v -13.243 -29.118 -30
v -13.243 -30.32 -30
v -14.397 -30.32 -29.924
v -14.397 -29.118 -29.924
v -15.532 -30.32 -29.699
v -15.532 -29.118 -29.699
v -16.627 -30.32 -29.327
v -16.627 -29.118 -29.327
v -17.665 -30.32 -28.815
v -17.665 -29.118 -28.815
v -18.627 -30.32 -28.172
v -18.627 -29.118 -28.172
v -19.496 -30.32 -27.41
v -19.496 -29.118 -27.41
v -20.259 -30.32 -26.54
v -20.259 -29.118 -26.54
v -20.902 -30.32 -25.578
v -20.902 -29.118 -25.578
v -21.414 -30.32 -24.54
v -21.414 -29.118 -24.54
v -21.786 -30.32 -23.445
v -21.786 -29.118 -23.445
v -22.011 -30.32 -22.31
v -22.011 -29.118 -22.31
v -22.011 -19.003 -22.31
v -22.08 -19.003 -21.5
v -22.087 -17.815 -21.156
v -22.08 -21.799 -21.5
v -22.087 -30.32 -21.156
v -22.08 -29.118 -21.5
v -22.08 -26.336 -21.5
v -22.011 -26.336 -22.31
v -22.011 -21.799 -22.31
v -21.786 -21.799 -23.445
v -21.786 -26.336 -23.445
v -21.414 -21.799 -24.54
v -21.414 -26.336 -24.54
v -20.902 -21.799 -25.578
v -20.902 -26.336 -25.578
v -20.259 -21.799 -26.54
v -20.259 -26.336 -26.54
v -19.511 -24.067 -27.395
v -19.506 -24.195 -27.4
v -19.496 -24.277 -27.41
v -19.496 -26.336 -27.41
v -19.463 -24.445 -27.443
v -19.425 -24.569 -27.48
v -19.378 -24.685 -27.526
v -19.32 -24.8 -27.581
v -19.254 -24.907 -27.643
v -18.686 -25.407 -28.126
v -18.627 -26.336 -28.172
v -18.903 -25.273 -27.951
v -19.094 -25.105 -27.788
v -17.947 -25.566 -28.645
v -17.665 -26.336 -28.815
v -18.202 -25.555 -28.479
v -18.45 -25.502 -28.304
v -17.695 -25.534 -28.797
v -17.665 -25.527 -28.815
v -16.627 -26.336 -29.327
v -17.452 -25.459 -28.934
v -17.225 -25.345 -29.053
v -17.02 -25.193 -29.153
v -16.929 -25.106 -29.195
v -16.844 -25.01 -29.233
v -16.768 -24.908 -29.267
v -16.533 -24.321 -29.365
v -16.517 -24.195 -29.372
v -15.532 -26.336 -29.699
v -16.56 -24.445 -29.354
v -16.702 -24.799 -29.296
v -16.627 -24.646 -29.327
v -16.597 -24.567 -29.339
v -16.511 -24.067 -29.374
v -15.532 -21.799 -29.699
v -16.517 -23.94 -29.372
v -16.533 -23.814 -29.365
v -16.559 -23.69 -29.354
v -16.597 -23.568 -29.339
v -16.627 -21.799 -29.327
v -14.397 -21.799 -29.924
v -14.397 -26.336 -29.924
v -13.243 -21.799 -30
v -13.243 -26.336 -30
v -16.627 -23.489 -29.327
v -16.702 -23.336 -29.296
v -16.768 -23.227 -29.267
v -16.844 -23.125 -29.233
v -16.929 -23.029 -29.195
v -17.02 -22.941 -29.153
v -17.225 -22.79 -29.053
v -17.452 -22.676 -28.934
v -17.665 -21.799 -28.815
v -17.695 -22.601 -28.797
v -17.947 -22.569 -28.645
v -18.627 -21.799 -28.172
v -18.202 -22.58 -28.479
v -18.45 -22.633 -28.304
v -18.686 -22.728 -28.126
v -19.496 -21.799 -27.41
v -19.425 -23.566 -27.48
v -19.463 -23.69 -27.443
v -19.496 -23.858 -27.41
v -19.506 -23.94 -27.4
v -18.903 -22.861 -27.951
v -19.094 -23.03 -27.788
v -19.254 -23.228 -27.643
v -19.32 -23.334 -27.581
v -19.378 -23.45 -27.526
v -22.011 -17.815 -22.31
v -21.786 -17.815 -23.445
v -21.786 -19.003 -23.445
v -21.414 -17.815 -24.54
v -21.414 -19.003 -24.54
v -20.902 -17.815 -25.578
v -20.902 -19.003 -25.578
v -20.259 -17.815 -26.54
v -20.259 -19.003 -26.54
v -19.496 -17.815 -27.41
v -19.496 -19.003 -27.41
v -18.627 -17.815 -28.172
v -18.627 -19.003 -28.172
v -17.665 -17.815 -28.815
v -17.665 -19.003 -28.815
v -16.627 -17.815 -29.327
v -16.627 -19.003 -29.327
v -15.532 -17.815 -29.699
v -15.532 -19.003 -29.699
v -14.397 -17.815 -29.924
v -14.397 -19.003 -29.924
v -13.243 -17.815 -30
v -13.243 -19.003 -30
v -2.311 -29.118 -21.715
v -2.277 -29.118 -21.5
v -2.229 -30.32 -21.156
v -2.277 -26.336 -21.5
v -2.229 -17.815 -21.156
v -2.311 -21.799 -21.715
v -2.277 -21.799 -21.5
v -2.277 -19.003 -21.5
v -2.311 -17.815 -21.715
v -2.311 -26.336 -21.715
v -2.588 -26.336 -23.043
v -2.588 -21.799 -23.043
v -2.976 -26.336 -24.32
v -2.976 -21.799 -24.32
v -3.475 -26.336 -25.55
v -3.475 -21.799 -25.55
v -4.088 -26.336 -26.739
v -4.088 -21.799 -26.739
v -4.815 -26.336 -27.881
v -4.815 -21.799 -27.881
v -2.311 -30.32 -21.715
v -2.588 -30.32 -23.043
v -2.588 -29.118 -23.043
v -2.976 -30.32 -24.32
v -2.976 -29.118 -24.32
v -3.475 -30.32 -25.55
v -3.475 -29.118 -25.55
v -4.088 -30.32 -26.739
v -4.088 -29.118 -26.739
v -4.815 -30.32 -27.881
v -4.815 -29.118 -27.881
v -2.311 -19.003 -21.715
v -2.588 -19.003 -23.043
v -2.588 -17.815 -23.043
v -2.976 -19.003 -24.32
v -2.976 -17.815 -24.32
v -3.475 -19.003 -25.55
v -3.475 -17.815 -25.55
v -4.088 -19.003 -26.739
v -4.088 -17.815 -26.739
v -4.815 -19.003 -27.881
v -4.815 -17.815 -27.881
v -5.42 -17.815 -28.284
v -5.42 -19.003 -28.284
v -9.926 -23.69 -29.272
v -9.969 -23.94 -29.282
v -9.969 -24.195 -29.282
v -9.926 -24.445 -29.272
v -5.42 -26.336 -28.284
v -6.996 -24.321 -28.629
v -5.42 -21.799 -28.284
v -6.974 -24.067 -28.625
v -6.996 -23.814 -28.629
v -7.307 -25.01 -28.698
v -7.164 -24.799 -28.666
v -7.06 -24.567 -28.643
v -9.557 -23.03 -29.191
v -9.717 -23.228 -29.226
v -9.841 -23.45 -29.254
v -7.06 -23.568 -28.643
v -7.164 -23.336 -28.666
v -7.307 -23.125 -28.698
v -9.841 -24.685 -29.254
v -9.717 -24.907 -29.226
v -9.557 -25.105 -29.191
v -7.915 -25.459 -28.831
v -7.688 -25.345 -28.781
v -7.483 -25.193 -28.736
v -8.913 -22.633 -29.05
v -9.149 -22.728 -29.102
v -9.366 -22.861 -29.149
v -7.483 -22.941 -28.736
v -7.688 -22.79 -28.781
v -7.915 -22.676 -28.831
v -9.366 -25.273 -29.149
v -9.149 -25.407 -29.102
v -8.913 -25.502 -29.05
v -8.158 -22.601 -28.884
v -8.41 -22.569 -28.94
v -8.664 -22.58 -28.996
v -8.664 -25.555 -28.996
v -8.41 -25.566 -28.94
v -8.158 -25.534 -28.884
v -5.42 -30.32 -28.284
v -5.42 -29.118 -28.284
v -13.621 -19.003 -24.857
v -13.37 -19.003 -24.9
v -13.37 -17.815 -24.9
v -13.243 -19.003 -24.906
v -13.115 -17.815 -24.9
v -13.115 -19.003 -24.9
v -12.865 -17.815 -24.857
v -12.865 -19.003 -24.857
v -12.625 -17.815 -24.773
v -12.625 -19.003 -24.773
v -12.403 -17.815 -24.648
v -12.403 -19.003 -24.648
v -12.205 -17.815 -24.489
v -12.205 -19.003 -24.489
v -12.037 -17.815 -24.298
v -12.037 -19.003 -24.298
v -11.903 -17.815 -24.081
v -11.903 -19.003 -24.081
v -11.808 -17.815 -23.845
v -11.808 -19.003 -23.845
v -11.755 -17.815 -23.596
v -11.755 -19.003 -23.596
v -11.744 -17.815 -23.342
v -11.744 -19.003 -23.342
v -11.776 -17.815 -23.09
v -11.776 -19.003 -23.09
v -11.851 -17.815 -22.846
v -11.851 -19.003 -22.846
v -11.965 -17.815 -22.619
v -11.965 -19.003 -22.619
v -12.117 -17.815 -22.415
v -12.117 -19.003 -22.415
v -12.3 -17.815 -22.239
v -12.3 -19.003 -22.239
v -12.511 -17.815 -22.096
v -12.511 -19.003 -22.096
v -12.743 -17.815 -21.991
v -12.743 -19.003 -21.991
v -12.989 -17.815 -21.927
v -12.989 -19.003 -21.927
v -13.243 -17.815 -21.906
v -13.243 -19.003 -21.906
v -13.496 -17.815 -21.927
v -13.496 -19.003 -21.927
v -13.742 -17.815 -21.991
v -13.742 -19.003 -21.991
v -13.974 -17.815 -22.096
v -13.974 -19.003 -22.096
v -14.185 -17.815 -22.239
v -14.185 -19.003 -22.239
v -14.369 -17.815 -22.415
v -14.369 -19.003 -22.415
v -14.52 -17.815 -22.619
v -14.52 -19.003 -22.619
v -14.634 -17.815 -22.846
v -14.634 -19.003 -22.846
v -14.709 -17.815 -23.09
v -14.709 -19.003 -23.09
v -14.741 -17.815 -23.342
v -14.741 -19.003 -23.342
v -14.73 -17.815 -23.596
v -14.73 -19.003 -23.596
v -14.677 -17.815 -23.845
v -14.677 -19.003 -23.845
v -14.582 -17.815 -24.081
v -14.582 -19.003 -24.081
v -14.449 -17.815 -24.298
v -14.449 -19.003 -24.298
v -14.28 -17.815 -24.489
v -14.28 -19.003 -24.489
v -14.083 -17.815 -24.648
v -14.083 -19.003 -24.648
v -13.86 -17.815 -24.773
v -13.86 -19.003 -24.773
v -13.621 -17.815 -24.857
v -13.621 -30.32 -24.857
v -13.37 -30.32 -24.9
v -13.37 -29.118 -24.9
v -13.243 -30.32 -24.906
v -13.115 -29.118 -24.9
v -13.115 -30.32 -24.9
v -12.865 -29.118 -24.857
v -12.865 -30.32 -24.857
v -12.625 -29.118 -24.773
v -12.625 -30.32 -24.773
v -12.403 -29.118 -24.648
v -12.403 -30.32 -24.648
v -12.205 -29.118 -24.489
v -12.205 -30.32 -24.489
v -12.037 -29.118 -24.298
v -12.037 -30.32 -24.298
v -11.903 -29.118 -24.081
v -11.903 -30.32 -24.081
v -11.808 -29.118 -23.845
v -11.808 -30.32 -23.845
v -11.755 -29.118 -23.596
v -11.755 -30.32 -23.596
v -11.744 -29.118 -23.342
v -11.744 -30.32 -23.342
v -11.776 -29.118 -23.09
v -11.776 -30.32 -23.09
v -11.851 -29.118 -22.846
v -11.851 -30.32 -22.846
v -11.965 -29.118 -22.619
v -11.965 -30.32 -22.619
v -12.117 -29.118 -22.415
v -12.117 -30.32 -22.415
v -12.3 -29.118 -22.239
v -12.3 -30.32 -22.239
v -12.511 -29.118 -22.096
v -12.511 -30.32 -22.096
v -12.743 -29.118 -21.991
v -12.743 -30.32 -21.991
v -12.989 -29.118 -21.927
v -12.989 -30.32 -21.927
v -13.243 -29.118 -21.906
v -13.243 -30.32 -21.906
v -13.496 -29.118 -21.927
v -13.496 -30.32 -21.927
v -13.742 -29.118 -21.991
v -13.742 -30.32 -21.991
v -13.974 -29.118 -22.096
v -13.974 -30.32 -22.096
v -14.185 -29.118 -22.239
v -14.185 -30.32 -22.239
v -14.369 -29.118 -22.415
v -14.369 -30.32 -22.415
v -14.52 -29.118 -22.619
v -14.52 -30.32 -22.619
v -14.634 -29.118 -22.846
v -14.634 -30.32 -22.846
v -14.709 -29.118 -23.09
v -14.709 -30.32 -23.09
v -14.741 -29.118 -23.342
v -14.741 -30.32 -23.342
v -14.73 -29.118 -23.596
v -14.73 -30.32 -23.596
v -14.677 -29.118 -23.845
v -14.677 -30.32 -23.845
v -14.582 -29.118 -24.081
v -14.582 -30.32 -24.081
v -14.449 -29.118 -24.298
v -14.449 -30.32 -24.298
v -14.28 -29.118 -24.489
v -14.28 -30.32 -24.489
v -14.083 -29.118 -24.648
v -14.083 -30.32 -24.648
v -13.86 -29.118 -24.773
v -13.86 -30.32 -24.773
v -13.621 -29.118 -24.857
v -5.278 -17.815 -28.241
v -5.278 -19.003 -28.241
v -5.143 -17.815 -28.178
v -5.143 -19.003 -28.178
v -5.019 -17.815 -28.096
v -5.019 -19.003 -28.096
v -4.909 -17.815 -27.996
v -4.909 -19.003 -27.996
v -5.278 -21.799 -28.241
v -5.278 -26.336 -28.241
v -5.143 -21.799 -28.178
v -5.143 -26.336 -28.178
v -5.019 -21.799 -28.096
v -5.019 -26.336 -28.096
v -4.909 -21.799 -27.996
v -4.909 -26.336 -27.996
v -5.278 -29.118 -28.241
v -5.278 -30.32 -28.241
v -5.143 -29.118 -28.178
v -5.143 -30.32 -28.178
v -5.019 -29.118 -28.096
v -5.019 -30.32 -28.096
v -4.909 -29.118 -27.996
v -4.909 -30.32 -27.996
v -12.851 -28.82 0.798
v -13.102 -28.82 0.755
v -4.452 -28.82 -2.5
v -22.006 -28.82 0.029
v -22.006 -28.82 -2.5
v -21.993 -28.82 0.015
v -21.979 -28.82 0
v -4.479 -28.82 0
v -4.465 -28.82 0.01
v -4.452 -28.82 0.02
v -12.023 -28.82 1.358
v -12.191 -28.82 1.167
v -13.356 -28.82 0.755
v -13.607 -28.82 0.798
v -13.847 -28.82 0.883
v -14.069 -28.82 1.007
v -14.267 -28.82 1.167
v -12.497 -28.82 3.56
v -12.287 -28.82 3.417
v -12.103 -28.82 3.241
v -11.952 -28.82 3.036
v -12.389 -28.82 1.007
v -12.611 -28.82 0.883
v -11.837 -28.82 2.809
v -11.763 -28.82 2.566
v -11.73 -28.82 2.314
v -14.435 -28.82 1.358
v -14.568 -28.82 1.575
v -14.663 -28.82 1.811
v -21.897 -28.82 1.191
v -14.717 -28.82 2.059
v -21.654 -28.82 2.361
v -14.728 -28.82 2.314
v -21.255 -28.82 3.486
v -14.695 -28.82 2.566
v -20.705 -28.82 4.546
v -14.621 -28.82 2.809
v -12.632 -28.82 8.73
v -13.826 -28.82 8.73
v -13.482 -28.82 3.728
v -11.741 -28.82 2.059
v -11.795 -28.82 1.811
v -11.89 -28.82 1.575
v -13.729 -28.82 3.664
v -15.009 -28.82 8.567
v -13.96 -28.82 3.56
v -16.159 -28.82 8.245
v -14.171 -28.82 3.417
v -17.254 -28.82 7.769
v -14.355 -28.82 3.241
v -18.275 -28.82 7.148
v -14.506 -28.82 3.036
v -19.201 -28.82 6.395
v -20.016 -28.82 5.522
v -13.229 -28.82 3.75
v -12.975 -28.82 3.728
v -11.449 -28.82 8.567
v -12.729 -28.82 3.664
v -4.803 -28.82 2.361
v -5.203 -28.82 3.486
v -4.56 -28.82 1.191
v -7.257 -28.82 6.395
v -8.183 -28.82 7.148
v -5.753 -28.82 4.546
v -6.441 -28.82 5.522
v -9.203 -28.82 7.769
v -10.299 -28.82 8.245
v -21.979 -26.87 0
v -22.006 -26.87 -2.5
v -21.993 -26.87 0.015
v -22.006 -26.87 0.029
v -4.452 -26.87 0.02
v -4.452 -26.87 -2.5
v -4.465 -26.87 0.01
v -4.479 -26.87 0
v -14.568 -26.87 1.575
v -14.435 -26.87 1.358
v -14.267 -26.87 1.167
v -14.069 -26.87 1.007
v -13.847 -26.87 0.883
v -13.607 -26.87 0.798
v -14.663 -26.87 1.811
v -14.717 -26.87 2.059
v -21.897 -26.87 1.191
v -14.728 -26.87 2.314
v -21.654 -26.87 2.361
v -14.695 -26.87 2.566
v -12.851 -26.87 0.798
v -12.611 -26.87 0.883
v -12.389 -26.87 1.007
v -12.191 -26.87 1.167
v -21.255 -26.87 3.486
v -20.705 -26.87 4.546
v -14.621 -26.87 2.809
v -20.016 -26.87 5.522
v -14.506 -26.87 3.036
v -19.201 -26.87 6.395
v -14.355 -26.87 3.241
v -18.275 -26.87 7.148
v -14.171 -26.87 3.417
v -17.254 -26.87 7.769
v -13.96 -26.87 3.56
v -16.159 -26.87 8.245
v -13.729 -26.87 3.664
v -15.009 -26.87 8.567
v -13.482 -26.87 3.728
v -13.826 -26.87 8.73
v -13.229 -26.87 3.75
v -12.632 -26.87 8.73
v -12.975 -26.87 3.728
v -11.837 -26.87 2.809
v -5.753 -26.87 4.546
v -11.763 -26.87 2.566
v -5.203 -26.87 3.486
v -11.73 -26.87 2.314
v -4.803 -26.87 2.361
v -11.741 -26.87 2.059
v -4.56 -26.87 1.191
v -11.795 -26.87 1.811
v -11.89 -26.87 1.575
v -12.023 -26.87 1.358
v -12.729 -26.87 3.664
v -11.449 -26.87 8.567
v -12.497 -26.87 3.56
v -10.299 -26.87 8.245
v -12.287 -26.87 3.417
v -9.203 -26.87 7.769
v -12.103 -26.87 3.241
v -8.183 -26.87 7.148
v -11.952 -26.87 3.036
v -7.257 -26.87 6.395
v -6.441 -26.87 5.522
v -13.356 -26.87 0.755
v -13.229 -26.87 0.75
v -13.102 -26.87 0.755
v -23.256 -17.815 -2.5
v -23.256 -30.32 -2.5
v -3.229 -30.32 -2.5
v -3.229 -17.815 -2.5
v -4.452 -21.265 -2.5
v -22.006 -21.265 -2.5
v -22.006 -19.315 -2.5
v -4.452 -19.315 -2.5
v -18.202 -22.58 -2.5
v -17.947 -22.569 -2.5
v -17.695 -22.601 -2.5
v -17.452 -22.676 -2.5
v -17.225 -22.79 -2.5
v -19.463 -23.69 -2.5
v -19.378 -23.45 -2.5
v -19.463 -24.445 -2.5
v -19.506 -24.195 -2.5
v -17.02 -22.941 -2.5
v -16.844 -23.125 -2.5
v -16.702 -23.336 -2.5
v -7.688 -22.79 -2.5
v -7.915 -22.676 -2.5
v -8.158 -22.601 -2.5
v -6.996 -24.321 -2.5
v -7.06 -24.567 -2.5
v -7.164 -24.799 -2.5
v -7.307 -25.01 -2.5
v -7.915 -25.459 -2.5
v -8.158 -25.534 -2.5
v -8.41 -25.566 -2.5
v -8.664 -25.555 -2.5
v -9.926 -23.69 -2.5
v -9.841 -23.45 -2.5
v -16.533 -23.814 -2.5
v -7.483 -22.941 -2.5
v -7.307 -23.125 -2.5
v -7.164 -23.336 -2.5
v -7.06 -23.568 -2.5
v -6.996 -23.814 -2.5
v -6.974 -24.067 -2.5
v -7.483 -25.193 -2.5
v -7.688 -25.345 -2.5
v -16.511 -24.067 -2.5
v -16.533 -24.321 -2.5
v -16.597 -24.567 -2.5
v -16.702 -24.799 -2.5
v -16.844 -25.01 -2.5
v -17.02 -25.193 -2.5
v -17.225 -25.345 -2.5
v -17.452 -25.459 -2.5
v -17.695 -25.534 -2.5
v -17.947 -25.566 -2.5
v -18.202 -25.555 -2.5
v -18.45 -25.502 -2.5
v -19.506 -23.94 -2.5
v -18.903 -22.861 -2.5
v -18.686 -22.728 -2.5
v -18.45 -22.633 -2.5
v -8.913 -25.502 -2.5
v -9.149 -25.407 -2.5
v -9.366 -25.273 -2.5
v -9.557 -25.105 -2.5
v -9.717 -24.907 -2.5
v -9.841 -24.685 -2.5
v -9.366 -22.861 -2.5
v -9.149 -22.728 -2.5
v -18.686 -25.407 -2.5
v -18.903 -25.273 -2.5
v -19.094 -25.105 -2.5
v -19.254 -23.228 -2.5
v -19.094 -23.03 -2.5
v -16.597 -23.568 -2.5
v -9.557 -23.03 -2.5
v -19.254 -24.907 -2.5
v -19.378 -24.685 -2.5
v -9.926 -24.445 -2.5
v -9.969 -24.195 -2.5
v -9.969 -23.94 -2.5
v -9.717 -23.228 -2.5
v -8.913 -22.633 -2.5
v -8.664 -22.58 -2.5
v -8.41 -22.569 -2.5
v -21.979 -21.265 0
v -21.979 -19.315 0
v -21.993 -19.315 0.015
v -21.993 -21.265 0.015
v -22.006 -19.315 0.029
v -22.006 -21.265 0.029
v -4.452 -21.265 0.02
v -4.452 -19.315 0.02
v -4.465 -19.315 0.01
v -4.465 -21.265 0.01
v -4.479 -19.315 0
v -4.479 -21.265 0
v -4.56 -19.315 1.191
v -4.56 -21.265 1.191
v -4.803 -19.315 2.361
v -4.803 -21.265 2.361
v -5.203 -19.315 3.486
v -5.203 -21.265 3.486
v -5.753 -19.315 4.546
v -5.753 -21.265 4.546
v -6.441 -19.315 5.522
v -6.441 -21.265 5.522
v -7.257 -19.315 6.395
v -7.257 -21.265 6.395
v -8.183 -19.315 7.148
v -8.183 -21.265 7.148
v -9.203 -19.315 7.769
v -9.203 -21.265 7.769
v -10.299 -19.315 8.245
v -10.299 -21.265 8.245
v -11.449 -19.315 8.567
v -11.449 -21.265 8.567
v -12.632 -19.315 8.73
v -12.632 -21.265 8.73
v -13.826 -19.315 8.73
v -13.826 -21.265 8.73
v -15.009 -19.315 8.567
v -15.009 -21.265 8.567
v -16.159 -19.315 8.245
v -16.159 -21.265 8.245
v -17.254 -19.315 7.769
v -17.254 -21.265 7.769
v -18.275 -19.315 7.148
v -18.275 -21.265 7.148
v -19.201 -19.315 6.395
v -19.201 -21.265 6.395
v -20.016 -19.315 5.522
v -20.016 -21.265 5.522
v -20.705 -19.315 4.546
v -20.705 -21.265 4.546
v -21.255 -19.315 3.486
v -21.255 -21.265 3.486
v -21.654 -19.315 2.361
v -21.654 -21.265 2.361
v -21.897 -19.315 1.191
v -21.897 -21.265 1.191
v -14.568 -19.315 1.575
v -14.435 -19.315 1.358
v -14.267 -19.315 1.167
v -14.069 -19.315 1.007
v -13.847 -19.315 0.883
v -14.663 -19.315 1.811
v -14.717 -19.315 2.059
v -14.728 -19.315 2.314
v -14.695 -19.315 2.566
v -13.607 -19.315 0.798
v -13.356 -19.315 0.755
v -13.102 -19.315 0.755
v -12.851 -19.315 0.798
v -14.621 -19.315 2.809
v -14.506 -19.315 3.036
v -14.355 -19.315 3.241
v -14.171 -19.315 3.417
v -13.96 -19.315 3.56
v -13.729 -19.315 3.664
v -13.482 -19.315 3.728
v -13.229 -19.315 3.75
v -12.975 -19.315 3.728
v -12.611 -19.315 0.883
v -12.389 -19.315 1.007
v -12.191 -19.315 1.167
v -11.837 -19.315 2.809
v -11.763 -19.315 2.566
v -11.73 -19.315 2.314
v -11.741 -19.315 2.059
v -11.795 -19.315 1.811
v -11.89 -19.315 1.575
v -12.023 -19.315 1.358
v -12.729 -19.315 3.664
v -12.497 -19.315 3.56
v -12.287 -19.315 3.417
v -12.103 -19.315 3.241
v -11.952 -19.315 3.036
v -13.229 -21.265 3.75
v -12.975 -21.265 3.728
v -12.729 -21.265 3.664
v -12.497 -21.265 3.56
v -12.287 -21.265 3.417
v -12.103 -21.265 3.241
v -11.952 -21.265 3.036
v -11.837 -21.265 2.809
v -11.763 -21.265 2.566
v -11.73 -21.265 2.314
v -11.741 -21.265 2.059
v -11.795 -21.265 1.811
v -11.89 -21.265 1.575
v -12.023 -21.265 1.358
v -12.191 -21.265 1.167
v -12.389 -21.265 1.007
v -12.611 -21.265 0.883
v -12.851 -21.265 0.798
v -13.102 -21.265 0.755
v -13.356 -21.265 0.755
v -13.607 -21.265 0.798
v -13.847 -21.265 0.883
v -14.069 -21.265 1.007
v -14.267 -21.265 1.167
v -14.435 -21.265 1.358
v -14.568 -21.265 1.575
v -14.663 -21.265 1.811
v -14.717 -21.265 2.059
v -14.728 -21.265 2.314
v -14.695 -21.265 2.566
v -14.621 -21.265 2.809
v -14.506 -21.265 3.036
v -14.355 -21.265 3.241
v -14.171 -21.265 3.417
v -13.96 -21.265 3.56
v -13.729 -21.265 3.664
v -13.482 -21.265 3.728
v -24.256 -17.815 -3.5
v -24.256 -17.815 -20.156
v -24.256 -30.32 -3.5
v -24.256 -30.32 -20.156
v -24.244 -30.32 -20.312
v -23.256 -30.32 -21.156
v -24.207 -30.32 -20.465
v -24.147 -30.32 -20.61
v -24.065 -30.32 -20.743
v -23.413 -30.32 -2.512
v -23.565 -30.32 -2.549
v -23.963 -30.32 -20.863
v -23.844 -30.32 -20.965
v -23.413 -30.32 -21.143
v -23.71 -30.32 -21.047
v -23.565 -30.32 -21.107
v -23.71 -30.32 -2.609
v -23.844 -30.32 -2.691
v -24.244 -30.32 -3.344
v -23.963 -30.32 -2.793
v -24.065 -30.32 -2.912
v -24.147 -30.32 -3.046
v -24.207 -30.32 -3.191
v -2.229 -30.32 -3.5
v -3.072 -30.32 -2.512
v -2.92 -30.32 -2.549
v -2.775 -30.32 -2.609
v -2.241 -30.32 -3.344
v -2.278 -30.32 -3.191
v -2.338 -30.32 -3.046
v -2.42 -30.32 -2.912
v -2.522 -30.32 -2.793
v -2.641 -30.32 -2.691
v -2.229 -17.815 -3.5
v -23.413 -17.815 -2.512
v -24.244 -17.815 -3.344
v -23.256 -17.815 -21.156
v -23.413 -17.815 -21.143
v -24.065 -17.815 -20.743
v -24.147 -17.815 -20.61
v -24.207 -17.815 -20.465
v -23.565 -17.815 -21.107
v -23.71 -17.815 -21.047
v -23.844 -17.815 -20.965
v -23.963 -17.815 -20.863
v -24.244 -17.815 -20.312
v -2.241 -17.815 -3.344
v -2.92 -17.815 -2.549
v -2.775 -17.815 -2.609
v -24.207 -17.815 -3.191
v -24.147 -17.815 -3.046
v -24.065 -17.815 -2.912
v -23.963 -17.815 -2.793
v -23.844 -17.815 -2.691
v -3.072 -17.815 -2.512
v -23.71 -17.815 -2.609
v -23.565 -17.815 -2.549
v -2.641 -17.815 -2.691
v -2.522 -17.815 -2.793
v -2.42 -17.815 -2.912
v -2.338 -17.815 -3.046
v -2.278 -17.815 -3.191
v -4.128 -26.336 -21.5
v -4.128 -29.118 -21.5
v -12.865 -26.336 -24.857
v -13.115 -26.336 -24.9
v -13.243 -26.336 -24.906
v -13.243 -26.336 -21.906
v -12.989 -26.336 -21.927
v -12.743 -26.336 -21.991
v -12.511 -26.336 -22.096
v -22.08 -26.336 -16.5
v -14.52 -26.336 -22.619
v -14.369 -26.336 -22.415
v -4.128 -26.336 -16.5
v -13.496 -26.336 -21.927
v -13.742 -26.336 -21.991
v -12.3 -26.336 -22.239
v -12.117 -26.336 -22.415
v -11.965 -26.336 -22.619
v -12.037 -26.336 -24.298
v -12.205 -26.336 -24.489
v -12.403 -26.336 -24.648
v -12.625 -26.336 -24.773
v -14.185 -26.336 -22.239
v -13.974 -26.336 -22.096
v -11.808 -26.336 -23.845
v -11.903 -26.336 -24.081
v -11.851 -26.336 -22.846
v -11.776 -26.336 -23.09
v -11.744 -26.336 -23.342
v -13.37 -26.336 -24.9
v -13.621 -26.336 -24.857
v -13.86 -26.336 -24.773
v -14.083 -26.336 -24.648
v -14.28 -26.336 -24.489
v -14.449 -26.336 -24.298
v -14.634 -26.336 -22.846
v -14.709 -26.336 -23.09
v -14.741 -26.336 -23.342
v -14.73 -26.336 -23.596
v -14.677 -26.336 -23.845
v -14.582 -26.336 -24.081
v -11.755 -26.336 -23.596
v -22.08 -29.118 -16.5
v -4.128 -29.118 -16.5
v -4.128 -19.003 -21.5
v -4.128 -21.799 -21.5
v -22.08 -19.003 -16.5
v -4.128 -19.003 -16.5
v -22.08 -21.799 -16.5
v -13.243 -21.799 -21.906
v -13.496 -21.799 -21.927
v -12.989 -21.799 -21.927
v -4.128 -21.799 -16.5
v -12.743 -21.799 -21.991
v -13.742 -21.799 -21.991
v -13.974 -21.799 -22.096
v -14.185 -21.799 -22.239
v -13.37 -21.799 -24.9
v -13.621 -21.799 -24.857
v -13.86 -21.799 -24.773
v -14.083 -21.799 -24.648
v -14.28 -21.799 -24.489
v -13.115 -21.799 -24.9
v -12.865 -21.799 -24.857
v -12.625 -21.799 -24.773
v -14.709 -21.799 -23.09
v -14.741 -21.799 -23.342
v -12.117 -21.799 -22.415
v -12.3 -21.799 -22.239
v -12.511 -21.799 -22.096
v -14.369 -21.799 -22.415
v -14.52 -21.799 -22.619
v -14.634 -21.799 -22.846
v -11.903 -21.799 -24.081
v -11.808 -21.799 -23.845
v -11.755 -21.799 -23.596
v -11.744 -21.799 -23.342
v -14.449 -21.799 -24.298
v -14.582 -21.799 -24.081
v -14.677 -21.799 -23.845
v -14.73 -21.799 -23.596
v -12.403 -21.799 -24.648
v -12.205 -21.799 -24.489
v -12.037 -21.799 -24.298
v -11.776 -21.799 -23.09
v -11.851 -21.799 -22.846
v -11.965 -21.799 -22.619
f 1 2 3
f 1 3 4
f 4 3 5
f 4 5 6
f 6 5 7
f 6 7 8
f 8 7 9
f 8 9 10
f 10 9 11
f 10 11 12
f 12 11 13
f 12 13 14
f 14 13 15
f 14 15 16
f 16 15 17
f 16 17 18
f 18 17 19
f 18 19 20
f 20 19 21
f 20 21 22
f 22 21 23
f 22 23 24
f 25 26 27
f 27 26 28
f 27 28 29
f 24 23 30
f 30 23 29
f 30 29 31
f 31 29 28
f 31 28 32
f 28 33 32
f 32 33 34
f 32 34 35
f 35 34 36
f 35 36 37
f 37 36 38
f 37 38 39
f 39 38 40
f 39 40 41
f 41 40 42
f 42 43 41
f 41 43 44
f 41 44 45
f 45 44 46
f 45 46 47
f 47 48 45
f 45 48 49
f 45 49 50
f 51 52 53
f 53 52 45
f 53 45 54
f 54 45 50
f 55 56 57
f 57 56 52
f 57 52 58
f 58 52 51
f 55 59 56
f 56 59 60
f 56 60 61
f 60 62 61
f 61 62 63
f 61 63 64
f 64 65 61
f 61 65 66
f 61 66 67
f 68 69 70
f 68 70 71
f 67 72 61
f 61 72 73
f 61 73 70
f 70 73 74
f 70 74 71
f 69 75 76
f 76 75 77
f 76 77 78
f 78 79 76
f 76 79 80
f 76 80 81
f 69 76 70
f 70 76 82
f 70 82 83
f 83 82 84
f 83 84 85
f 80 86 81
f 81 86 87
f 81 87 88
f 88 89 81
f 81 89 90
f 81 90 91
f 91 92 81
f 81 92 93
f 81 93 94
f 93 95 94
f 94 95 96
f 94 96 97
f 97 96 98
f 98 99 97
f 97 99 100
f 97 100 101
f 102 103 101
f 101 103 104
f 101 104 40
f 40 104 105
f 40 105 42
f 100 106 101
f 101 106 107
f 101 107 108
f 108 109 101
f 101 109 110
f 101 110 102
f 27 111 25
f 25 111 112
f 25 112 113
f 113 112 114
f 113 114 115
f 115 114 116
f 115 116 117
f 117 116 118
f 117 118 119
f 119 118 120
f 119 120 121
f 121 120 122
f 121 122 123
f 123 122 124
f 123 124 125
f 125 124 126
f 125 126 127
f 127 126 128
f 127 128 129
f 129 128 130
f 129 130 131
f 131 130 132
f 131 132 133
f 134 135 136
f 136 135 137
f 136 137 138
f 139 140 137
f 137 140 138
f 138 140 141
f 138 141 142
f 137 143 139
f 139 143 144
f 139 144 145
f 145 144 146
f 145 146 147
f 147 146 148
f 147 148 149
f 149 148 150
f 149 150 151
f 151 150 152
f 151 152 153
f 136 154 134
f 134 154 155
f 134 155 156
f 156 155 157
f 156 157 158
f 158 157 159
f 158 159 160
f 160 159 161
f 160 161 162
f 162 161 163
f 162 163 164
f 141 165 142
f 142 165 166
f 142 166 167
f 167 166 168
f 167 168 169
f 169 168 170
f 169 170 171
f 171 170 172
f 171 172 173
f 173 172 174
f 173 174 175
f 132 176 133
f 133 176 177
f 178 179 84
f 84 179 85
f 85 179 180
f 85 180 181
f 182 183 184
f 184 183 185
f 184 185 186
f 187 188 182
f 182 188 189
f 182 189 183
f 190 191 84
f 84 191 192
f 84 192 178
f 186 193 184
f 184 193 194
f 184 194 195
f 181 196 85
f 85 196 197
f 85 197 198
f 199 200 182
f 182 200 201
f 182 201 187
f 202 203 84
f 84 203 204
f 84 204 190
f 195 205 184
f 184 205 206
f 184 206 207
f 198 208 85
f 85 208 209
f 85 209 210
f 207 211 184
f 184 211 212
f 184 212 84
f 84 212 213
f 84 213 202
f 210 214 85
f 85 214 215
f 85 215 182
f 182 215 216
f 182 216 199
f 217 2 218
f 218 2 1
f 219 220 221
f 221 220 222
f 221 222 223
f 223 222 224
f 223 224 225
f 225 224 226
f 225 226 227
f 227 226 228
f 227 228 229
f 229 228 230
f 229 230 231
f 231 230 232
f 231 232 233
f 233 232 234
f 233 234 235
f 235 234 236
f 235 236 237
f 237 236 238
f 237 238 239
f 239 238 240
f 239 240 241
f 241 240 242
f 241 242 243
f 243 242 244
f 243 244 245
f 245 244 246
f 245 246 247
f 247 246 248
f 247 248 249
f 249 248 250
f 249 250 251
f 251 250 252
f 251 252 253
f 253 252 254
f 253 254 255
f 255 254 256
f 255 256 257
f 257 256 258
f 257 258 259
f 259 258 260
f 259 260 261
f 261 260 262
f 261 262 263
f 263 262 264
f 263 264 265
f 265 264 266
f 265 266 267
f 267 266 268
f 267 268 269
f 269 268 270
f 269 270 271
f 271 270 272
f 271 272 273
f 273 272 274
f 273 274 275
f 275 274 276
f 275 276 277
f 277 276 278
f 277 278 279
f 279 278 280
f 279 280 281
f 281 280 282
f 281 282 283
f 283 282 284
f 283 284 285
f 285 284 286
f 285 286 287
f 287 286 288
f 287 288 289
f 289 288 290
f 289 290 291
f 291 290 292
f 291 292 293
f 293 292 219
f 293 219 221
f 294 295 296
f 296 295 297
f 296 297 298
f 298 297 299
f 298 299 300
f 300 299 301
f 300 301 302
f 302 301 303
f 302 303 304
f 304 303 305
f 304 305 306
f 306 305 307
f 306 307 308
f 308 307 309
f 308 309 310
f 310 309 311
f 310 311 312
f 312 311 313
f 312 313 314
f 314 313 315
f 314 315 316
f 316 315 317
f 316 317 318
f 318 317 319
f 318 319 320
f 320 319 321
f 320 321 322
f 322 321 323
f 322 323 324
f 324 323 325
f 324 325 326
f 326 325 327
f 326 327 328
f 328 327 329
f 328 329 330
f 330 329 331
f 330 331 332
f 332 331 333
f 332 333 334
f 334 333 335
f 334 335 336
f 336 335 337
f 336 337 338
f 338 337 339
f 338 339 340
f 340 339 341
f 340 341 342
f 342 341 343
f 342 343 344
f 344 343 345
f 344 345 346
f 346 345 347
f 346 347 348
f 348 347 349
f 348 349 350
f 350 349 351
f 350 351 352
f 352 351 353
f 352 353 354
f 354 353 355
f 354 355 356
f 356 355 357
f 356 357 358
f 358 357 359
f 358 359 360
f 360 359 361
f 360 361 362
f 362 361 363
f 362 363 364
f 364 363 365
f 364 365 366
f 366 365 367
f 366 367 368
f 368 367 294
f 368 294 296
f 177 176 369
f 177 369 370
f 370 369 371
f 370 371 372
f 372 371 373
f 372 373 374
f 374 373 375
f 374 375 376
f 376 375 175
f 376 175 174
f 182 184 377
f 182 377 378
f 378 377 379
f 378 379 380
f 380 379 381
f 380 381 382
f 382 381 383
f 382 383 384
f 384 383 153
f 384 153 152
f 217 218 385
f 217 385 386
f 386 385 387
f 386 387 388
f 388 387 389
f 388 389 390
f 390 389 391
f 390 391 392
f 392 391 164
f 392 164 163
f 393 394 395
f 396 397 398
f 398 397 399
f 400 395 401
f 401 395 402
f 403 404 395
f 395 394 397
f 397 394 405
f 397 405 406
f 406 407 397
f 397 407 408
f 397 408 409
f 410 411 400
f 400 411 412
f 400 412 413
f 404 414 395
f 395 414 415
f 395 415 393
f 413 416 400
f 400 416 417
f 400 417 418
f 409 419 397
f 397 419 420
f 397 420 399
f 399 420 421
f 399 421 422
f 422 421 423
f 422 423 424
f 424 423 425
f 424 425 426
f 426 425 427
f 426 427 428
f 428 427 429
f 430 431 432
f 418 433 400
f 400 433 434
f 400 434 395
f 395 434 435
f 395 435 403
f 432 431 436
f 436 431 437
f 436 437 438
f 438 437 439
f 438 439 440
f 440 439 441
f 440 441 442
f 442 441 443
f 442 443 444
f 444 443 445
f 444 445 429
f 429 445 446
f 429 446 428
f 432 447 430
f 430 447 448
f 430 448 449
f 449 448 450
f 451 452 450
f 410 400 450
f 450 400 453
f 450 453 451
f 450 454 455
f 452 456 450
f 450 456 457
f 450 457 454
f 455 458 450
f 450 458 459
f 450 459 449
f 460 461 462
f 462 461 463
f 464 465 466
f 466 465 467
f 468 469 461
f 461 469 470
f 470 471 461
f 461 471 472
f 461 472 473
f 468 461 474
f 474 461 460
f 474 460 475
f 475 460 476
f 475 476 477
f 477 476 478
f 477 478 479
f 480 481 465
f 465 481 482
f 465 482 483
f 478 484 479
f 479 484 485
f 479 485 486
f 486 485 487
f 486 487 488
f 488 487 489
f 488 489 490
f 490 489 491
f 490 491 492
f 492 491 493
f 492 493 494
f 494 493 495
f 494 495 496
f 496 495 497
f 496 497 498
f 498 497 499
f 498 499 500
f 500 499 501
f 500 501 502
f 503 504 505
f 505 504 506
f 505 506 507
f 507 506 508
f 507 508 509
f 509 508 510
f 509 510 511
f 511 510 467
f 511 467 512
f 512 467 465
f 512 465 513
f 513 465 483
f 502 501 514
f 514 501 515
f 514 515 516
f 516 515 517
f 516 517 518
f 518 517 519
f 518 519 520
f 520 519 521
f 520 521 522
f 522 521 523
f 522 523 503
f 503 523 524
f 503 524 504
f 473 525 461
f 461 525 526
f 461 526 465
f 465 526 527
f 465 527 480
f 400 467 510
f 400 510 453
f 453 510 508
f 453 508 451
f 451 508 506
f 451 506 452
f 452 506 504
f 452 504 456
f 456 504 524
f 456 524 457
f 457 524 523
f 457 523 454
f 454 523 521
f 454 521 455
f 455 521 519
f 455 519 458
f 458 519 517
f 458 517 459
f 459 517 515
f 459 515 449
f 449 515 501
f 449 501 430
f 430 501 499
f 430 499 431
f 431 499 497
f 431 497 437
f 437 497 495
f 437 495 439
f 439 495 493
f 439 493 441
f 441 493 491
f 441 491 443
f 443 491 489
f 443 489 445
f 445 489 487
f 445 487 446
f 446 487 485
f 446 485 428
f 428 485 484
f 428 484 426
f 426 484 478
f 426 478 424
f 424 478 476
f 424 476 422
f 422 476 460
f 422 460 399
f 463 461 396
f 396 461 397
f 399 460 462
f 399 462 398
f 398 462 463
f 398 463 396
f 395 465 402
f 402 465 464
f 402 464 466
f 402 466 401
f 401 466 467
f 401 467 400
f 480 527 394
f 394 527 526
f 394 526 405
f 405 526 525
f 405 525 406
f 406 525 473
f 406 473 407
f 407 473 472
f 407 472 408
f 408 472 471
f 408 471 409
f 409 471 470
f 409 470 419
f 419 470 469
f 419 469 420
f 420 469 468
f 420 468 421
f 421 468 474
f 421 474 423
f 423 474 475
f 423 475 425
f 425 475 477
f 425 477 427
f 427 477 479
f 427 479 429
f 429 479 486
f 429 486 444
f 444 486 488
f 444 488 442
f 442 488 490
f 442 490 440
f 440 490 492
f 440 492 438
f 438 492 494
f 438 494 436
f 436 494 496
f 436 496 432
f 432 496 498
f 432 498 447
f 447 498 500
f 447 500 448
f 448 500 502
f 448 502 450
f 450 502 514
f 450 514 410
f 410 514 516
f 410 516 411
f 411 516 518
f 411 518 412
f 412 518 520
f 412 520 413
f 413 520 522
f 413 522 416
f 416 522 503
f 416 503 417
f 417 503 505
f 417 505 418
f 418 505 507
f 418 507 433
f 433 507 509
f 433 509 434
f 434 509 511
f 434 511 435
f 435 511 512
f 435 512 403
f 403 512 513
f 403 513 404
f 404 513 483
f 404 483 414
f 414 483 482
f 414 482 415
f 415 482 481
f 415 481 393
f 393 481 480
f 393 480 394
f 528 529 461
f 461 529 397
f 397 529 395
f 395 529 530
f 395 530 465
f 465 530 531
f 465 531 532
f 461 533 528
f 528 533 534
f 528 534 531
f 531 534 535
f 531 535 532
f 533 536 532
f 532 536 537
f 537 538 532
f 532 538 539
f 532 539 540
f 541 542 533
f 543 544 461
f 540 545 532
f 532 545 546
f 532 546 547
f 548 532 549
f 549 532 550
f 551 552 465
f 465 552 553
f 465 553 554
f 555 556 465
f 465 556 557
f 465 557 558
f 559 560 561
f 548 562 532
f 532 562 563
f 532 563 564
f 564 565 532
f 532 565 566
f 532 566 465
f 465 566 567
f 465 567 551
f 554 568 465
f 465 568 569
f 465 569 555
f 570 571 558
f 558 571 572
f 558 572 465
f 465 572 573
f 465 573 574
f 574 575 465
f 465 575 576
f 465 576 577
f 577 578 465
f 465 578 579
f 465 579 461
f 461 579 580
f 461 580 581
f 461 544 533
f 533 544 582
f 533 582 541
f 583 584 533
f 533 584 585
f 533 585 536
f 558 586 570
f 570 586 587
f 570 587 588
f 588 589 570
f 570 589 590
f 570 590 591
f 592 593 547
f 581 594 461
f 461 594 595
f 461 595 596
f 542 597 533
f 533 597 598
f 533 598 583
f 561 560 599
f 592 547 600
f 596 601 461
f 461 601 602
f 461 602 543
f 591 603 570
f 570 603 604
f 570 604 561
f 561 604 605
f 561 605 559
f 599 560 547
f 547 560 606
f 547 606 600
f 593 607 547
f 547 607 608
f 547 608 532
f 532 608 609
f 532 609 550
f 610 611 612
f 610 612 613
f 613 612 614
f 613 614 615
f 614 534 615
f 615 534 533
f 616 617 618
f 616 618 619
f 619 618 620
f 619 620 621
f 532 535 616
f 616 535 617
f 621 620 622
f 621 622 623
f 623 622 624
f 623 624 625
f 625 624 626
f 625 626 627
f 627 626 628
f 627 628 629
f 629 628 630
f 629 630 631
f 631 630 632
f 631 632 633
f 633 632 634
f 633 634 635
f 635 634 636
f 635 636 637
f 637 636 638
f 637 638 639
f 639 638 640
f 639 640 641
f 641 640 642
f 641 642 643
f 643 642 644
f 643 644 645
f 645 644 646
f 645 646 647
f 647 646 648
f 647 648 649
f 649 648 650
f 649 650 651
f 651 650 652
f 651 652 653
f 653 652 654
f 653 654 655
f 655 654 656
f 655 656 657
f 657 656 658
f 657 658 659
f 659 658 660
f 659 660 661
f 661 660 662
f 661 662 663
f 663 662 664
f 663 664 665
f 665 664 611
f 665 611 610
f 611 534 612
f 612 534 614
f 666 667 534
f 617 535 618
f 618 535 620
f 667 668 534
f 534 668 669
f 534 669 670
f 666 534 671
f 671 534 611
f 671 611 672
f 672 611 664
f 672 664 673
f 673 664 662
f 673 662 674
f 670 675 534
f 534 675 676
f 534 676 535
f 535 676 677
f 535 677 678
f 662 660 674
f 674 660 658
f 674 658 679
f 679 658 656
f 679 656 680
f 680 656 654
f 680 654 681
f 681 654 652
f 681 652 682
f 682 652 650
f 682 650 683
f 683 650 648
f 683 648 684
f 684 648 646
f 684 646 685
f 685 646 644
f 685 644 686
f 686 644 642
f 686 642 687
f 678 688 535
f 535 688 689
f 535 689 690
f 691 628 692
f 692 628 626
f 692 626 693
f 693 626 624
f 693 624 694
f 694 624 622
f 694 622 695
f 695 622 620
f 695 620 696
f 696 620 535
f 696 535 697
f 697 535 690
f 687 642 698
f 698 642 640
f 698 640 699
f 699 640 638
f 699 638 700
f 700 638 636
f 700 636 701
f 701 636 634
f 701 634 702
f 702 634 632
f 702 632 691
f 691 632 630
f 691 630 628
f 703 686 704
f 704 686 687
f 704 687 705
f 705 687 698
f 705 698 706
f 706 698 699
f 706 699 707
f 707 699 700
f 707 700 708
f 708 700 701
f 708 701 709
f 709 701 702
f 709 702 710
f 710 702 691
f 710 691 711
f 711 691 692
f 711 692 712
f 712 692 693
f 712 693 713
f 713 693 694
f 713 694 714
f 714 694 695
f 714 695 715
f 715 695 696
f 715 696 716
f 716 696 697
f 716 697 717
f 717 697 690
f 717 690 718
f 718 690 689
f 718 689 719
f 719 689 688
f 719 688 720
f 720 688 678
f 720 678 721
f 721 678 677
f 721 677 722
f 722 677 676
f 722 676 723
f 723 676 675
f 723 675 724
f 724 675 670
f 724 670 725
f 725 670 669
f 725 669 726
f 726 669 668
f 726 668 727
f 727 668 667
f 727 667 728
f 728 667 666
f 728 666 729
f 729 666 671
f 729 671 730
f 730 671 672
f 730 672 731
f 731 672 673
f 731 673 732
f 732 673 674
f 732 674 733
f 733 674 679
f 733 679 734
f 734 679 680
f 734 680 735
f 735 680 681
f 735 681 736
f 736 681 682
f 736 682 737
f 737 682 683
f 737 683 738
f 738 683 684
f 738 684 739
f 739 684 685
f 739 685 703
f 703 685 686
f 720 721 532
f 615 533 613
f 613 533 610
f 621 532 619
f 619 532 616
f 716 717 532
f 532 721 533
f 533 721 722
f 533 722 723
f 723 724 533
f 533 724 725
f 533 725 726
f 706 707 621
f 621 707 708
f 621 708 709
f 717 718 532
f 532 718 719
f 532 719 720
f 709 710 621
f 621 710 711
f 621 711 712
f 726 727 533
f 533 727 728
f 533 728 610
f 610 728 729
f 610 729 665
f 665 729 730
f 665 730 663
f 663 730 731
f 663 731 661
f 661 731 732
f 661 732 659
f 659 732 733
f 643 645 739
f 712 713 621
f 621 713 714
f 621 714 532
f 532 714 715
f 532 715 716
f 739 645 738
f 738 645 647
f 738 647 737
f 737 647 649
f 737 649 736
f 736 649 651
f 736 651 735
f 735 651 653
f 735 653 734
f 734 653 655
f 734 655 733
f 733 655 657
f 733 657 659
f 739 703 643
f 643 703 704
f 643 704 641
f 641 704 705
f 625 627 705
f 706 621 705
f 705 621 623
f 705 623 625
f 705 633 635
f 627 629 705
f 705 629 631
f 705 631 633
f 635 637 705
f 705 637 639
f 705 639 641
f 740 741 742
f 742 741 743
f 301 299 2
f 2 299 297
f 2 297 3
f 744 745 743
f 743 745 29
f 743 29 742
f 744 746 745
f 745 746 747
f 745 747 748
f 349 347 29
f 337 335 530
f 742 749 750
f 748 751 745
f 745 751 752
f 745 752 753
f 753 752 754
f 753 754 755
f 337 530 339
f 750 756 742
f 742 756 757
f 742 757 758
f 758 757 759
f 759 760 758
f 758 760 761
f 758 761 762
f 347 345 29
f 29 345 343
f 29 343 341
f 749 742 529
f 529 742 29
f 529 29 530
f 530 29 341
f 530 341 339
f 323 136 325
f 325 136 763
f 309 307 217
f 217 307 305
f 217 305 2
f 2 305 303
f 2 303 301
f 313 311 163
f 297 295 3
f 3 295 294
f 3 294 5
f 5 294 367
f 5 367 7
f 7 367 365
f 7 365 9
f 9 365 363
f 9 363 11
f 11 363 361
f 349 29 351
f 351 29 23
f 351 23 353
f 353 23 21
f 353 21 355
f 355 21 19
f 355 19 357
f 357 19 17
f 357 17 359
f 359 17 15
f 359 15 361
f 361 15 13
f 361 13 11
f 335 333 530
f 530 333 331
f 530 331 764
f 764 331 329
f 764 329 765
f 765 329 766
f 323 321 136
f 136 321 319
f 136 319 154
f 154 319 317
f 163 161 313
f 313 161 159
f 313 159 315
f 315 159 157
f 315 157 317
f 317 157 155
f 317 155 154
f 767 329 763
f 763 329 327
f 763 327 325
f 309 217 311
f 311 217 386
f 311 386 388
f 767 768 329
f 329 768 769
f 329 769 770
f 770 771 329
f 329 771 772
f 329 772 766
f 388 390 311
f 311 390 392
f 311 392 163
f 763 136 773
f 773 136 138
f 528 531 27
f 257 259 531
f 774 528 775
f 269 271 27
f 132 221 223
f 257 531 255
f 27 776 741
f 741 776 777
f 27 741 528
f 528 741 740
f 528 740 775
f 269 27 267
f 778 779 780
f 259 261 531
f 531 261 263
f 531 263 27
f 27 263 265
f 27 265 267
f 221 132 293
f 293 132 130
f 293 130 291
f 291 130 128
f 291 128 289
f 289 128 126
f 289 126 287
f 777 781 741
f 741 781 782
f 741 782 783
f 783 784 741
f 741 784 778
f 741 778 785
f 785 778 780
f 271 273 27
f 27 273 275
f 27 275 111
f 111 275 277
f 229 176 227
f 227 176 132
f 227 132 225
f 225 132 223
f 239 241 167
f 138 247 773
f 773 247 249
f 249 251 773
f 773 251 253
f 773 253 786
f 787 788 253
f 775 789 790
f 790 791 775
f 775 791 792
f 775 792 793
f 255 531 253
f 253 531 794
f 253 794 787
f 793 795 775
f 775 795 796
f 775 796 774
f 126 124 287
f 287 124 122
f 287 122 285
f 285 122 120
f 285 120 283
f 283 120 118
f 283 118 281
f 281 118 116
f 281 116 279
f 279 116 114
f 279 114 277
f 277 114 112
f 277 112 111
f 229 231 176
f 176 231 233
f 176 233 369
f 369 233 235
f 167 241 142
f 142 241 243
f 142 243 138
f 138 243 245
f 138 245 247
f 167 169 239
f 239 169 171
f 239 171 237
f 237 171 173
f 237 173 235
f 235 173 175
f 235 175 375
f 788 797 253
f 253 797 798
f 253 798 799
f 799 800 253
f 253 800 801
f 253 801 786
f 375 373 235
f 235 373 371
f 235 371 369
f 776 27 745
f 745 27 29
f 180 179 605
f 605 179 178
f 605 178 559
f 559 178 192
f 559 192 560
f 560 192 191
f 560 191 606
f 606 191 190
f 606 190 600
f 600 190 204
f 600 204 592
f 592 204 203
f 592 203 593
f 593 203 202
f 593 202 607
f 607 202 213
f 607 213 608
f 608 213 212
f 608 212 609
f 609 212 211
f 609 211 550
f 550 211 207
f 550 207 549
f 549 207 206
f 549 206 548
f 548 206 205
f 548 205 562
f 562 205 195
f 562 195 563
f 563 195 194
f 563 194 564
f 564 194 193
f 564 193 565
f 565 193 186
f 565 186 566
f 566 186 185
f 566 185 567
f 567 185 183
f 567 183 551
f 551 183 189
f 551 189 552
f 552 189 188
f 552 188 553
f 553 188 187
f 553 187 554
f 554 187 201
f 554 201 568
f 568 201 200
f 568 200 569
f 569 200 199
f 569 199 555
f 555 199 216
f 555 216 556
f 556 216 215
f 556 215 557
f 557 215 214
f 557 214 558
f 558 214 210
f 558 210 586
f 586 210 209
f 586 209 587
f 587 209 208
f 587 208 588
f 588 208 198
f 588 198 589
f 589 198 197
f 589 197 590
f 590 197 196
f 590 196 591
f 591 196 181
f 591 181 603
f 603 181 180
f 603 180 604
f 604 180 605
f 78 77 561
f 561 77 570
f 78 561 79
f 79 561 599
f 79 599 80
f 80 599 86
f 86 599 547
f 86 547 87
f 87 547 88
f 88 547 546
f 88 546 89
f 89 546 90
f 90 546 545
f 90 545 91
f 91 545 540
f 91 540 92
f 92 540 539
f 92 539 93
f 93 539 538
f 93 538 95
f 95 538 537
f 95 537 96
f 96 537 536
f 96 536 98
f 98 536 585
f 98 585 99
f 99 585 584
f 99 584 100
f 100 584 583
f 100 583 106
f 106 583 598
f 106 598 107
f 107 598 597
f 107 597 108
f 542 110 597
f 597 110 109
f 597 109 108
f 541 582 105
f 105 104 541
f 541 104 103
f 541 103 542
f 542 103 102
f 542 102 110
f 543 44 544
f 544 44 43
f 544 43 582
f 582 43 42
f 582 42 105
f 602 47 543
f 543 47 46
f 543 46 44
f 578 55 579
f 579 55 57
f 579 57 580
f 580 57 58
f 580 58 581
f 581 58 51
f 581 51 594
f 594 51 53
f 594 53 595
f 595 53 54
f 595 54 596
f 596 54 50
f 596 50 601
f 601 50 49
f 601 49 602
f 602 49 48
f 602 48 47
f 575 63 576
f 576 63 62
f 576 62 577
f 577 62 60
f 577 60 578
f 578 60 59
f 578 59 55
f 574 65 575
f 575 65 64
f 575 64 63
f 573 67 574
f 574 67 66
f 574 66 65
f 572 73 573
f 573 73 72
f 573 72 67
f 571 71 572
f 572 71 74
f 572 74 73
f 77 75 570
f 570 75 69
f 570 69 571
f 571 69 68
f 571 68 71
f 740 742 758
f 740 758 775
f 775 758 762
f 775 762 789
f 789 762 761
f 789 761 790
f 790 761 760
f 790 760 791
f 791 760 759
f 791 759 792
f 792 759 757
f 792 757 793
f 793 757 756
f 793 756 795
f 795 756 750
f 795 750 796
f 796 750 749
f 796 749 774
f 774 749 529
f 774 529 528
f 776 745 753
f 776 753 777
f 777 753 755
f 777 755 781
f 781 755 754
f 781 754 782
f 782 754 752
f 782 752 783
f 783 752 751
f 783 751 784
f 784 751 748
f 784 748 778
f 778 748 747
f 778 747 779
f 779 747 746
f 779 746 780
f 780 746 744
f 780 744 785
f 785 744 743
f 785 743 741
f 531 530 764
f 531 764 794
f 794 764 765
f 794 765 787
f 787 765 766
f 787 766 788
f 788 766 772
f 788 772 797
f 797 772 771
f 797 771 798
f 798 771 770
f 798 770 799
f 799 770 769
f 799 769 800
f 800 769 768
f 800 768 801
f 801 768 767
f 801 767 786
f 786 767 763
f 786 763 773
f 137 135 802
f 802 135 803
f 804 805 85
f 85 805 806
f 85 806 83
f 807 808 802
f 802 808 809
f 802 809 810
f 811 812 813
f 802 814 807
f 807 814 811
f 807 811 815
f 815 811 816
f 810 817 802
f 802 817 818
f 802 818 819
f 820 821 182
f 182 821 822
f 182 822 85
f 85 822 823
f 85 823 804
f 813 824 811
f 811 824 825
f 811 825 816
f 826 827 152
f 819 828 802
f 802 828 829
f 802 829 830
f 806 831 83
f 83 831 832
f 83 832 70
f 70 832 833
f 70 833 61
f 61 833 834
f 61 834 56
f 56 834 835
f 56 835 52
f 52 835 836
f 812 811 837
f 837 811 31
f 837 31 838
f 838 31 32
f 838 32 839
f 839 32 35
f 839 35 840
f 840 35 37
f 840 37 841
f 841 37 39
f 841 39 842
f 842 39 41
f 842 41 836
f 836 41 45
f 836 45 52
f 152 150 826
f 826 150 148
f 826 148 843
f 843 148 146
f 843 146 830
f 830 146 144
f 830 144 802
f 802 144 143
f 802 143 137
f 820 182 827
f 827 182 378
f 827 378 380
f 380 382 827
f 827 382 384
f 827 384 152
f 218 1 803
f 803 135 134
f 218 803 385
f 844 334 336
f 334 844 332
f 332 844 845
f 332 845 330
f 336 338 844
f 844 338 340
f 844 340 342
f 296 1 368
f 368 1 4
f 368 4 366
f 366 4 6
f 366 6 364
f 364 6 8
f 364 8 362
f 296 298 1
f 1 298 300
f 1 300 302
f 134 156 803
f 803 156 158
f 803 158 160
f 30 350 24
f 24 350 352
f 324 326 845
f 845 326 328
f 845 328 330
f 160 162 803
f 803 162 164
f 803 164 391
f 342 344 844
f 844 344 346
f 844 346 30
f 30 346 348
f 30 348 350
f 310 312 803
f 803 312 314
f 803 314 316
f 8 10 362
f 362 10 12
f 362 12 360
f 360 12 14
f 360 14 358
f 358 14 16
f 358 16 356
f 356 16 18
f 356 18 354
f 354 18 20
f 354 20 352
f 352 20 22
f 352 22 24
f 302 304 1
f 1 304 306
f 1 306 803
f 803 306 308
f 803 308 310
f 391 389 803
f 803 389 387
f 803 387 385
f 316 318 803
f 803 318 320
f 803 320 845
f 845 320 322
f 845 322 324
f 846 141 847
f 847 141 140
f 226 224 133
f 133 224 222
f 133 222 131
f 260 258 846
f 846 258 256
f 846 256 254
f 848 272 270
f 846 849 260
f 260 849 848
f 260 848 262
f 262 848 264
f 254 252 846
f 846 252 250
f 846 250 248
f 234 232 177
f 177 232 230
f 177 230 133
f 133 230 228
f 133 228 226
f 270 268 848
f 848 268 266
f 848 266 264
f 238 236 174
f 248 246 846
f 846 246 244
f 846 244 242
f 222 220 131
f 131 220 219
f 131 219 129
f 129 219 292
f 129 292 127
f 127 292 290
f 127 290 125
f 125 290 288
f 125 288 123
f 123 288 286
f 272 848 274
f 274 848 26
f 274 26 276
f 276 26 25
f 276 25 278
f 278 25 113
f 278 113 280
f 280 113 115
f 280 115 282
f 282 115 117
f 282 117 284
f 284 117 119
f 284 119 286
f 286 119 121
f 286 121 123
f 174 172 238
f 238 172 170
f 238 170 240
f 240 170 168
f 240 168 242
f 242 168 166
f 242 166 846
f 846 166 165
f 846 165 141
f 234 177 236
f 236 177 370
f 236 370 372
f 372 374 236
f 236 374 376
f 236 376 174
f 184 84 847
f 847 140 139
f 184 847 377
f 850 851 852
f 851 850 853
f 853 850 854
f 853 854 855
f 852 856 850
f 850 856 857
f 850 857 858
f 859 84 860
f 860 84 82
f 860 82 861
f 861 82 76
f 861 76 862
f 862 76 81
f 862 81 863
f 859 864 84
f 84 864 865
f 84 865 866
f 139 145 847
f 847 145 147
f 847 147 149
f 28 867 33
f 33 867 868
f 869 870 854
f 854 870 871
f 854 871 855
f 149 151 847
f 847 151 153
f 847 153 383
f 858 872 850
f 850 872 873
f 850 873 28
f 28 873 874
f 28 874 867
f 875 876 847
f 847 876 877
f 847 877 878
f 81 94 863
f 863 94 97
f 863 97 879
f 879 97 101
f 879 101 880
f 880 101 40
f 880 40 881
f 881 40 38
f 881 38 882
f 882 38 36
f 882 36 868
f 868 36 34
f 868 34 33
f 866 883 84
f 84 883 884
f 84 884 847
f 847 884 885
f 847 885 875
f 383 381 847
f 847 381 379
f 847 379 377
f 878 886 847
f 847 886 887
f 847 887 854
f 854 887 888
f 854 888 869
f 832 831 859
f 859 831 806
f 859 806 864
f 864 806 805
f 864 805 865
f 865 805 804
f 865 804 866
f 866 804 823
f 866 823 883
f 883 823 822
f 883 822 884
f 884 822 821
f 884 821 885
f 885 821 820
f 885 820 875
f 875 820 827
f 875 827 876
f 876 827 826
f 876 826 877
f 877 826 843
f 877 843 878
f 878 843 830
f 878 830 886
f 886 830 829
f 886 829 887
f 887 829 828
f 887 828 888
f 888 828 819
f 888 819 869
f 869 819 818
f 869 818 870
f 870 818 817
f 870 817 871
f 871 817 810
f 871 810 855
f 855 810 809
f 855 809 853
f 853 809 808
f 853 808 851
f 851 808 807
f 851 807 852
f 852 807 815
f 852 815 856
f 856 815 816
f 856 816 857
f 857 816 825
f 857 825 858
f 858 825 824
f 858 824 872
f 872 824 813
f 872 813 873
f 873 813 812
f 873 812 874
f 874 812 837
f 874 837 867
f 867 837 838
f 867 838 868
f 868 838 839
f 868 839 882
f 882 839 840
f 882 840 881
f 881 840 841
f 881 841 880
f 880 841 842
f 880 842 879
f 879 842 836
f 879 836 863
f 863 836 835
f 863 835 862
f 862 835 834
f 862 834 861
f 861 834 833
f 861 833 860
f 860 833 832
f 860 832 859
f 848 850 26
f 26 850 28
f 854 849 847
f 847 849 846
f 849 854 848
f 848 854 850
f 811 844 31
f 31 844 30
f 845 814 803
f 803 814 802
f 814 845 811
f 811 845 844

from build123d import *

# Parameters (mm, degrees)
SKETCH2_W             = 17.554431489
SKETCH2_H             = 1.95
BOSS_EXTRUDE1_DEPTH   = 8.75
BOSS_EXTRUDE1_2_DEPTH = 8.75
CUT_EXTRUDE1_DEPTH    = 26.518349076
SKETCH4_W             = 22.027215745
SKETCH4_H             = 12.505427167
BOSS_EXTRUDE2_DEPTH   = 30
SKETCH5_R             = 1.5
CUT_EXTRUDE2_DEPTH    = 12
SKETCH6_W             = 22.027215745
SKETCH6_H             = 12.505427167
SKETCH6_W_2           = 17.554431489
SKETCH6_H_2           = 1.95
CUT_EXTRUDE3_DEPTH    = 2.5
SKETCH7_R             = 1.5
CUT_EXTRUDE4_DEPTH    = 13
SKETCH8_R             = 1.5
CUT_EXTRUDE5_DEPTH    = 28
FILLET3_R             = 1
SKETCH9_W             = 22.022981174
SKETCH9_H             = 2.796352896
SKETCH9_H_2           = 2.782097604
CUT_EXTRUDE6_DEPTH    = 11
SKETCH10_W            = 17.952287352
SKETCH10_H            = 2.796352896
SKETCH10_H_2          = 2.782097604
CUT_EXTRUDE7_DEPTH    = 5


with BuildPart() as part:
    # Sketch2 → Boss-Extrude1 (new body)
    with BuildSketch(Plane.XY):
        with Locations((-13.228930986, -27.845183414)):
            Rectangle(SKETCH2_W, SKETCH2_H)
    extrude(amount=BOSS_EXTRUDE1_DEPTH)


with BuildPart() as body_2:
    # Sketch2 → Boss-Extrude1 2 (new body)
    with BuildSketch(Plane.XY):
        with Locations((-13.228930986, -20.289756247)):
            Rectangle(SKETCH2_W, SKETCH2_H)
    extrude(amount=BOSS_EXTRUDE1_2_DEPTH)


with BuildPart() as cut_extrude1_tool:
    # Sketch3 → Cut-Extrude1 (new, through all)
    with BuildSketch(Plane(origin=(0, -19.314756247, 0), x_dir=(1, 0, 0), z_dir=(0, 1, 0))):
        with BuildLine():
            ThreePointArc((-13.228930986, -8.75), (-7.041746651, -6.187184335), (-4.478930986, 0))
            add(Edge.make_bspline(
                [(-4.478930986, 0), (1.138349918, -4.151657709), (-4.451715242, -8.75)],
                knots=[0, 0, 0, 1, 1, 1], degree=2))
            add(Edge.make_bspline(
                [(-22.006146731, -8.75), (-13.228930986, -12.473510392), (-4.451715242, -8.75)],
                knots=[0, 0, 0, 1, 1, 1], degree=2))
            add(Edge.make_bspline(
                [(-21.978930986, 0), (-25.926969228, -4.242865138), (-22.006146731, -8.75)],
                knots=[0, 0, 0, 1, 1, 1], degree=2))
            ThreePointArc((-21.978930986, 0), (-19.416115322, -6.187184335), (-13.228930986, -8.75))
        make_face()
    extrude(amount=-CUT_EXTRUDE1_DEPTH)


with BuildPart() as part_1:
    add(part.part)

    # Cut-Extrude1: cut by cut_extrude1_tool
    add(cut_extrude1_tool.part, mode=Mode.SUBTRACT)



with BuildPart() as body_2_1:
    add(body_2.part)

    # Cut-Extrude1: cut by cut_extrude1_tool
    add(cut_extrude1_tool.part, mode=Mode.SUBTRACT)


with BuildPart() as part_2:
    add(part_1.part)

    add(body_2_1.part)  # Boss-Extrude2 merges body 2
    # Sketch4 → Boss-Extrude2 (add)
    with BuildSketch(Plane(origin=(0, 0, 0), x_dir=(-1, 0, 0), z_dir=(0, 0, -1))):
        with Locations((13.242538859, -24.067469831)):
            Rectangle(SKETCH4_W, SKETCH4_H)
    extrude(amount=BOSS_EXTRUDE2_DEPTH)

    # Sketch5 → Cut-Extrude2 (cut)
    with BuildSketch(Plane(origin=(0, -19.314756247, 0), x_dir=(1, 0, 0), z_dir=(0, 1, 0))):
        with Locations(Location((-13.228930986, -2.25, 0), (0, 0, 270))):
            Circle(SKETCH5_R)
    extrude(amount=-CUT_EXTRUDE2_DEPTH, mode=Mode.SUBTRACT)

    # Sketch6 → Cut-Extrude3 (cut)
    with BuildSketch(Plane.XY):
        with Locations((-13.242538859, -24.067469831)):
            Rectangle(SKETCH6_W, SKETCH6_H)
        with Locations((-13.228930986, -27.845183414)):
            Rectangle(SKETCH6_W_2, SKETCH6_H_2, mode=Mode.SUBTRACT)
        with Locations((-13.228930986, -20.289756247)):
            Rectangle(SKETCH6_W_2, SKETCH6_H_2, mode=Mode.SUBTRACT)
    extrude(amount=-CUT_EXTRUDE3_DEPTH, mode=Mode.SUBTRACT)

    # Sketch7 → Cut-Extrude4 (cut)
    with BuildSketch(Plane(origin=(0, -17.814756247, 0), x_dir=(1, 0, 0), z_dir=(0, 1, 0))):
        with Locations(Location((-13.242538859, 23.405672985, 0), (0, 0, 270))):
            Circle(SKETCH7_R)
        with BuildLine():
            Line((-22.086865874, 21.155672985), (-24.256146731, 21.155672985))
            add(Edge.make_bspline(
                [(-2.228930986, 21.155672985), (11.471530889, 27.189710441), (-11.765166974, 53.431279988), (-37.007876173, 21.523583672), (-24.256146731, 21.155672985)],
                knots=[0, 0, 0, 0, 0.52011282, 1, 1, 1, 1], degree=3))
            add(Edge.make_bspline(
                [(-5.046294073, 28.201654423), (-2.731488374, 25.068620188), (-2.228930986, 21.155672985)],
                knots=[0, 0, 0, 1, 1, 1], degree=2))
            Line((-5.046294073, 28.201654423), (-13.242538859, 30))
            ThreePointArc((-13.242538859, 30), (-19.496422466, 27.409556592), (-22.086865874, 21.155672985))
        make_face()
    extrude(amount=-CUT_EXTRUDE4_DEPTH, mode=Mode.SUBTRACT)

    # Sketch8 → Cut-Extrude5 (cut)
    with BuildSketch(Plane.XY.offset(-2.5)):
        with Locations((-18.011106811, -24.06746983)):
            Circle(SKETCH8_R)
        with Locations((-8.473970906, -24.06746983)):
            Circle(SKETCH8_R)
    extrude(amount=-CUT_EXTRUDE5_DEPTH, mode=Mode.SUBTRACT)

    # Fillet3
    fillet3_edges = [part_2.edges().sort_by_distance(p)[0] for p in [
        (-24.256146731, -24.06746983, -2.5),
        (-24.256146731, -24.06746983, -21.155672985),
        (-2.228930986, -24.06746983, -2.5),
        (-5.046294073, -24.06746983, -28.201654423),
    ]]
    fillet(fillet3_edges, radius=FILLET3_R)

    # Sketch9 → Cut-Extrude6 (cut)
    with BuildSketch(Plane.XY.offset(-32.5)):
        with Locations((-13.24253886, -20.400707387)):
            Rectangle(SKETCH9_W, SKETCH9_H)
        with Locations((-13.24253886, -27.727104636)):
            Rectangle(SKETCH9_W, SKETCH9_H_2)
    extrude(amount=CUT_EXTRUDE6_DEPTH, mode=Mode.SUBTRACT)

    # Sketch10 → Cut-Extrude7 (cut)
    with BuildSketch(Plane(origin=(0, 0, -21.5), x_dir=(-1, 0, 0), z_dir=(0, 0, -1))):
        with Locations((13.104016993, -20.400707387)):
            Rectangle(SKETCH10_W, SKETCH10_H)
        with Locations((13.104016993, -27.727104636)):
            Rectangle(SKETCH10_W, SKETCH10_H_2)
    extrude(amount=-CUT_EXTRUDE7_DEPTH, mode=Mode.SUBTRACT)


solid = part_2.part
